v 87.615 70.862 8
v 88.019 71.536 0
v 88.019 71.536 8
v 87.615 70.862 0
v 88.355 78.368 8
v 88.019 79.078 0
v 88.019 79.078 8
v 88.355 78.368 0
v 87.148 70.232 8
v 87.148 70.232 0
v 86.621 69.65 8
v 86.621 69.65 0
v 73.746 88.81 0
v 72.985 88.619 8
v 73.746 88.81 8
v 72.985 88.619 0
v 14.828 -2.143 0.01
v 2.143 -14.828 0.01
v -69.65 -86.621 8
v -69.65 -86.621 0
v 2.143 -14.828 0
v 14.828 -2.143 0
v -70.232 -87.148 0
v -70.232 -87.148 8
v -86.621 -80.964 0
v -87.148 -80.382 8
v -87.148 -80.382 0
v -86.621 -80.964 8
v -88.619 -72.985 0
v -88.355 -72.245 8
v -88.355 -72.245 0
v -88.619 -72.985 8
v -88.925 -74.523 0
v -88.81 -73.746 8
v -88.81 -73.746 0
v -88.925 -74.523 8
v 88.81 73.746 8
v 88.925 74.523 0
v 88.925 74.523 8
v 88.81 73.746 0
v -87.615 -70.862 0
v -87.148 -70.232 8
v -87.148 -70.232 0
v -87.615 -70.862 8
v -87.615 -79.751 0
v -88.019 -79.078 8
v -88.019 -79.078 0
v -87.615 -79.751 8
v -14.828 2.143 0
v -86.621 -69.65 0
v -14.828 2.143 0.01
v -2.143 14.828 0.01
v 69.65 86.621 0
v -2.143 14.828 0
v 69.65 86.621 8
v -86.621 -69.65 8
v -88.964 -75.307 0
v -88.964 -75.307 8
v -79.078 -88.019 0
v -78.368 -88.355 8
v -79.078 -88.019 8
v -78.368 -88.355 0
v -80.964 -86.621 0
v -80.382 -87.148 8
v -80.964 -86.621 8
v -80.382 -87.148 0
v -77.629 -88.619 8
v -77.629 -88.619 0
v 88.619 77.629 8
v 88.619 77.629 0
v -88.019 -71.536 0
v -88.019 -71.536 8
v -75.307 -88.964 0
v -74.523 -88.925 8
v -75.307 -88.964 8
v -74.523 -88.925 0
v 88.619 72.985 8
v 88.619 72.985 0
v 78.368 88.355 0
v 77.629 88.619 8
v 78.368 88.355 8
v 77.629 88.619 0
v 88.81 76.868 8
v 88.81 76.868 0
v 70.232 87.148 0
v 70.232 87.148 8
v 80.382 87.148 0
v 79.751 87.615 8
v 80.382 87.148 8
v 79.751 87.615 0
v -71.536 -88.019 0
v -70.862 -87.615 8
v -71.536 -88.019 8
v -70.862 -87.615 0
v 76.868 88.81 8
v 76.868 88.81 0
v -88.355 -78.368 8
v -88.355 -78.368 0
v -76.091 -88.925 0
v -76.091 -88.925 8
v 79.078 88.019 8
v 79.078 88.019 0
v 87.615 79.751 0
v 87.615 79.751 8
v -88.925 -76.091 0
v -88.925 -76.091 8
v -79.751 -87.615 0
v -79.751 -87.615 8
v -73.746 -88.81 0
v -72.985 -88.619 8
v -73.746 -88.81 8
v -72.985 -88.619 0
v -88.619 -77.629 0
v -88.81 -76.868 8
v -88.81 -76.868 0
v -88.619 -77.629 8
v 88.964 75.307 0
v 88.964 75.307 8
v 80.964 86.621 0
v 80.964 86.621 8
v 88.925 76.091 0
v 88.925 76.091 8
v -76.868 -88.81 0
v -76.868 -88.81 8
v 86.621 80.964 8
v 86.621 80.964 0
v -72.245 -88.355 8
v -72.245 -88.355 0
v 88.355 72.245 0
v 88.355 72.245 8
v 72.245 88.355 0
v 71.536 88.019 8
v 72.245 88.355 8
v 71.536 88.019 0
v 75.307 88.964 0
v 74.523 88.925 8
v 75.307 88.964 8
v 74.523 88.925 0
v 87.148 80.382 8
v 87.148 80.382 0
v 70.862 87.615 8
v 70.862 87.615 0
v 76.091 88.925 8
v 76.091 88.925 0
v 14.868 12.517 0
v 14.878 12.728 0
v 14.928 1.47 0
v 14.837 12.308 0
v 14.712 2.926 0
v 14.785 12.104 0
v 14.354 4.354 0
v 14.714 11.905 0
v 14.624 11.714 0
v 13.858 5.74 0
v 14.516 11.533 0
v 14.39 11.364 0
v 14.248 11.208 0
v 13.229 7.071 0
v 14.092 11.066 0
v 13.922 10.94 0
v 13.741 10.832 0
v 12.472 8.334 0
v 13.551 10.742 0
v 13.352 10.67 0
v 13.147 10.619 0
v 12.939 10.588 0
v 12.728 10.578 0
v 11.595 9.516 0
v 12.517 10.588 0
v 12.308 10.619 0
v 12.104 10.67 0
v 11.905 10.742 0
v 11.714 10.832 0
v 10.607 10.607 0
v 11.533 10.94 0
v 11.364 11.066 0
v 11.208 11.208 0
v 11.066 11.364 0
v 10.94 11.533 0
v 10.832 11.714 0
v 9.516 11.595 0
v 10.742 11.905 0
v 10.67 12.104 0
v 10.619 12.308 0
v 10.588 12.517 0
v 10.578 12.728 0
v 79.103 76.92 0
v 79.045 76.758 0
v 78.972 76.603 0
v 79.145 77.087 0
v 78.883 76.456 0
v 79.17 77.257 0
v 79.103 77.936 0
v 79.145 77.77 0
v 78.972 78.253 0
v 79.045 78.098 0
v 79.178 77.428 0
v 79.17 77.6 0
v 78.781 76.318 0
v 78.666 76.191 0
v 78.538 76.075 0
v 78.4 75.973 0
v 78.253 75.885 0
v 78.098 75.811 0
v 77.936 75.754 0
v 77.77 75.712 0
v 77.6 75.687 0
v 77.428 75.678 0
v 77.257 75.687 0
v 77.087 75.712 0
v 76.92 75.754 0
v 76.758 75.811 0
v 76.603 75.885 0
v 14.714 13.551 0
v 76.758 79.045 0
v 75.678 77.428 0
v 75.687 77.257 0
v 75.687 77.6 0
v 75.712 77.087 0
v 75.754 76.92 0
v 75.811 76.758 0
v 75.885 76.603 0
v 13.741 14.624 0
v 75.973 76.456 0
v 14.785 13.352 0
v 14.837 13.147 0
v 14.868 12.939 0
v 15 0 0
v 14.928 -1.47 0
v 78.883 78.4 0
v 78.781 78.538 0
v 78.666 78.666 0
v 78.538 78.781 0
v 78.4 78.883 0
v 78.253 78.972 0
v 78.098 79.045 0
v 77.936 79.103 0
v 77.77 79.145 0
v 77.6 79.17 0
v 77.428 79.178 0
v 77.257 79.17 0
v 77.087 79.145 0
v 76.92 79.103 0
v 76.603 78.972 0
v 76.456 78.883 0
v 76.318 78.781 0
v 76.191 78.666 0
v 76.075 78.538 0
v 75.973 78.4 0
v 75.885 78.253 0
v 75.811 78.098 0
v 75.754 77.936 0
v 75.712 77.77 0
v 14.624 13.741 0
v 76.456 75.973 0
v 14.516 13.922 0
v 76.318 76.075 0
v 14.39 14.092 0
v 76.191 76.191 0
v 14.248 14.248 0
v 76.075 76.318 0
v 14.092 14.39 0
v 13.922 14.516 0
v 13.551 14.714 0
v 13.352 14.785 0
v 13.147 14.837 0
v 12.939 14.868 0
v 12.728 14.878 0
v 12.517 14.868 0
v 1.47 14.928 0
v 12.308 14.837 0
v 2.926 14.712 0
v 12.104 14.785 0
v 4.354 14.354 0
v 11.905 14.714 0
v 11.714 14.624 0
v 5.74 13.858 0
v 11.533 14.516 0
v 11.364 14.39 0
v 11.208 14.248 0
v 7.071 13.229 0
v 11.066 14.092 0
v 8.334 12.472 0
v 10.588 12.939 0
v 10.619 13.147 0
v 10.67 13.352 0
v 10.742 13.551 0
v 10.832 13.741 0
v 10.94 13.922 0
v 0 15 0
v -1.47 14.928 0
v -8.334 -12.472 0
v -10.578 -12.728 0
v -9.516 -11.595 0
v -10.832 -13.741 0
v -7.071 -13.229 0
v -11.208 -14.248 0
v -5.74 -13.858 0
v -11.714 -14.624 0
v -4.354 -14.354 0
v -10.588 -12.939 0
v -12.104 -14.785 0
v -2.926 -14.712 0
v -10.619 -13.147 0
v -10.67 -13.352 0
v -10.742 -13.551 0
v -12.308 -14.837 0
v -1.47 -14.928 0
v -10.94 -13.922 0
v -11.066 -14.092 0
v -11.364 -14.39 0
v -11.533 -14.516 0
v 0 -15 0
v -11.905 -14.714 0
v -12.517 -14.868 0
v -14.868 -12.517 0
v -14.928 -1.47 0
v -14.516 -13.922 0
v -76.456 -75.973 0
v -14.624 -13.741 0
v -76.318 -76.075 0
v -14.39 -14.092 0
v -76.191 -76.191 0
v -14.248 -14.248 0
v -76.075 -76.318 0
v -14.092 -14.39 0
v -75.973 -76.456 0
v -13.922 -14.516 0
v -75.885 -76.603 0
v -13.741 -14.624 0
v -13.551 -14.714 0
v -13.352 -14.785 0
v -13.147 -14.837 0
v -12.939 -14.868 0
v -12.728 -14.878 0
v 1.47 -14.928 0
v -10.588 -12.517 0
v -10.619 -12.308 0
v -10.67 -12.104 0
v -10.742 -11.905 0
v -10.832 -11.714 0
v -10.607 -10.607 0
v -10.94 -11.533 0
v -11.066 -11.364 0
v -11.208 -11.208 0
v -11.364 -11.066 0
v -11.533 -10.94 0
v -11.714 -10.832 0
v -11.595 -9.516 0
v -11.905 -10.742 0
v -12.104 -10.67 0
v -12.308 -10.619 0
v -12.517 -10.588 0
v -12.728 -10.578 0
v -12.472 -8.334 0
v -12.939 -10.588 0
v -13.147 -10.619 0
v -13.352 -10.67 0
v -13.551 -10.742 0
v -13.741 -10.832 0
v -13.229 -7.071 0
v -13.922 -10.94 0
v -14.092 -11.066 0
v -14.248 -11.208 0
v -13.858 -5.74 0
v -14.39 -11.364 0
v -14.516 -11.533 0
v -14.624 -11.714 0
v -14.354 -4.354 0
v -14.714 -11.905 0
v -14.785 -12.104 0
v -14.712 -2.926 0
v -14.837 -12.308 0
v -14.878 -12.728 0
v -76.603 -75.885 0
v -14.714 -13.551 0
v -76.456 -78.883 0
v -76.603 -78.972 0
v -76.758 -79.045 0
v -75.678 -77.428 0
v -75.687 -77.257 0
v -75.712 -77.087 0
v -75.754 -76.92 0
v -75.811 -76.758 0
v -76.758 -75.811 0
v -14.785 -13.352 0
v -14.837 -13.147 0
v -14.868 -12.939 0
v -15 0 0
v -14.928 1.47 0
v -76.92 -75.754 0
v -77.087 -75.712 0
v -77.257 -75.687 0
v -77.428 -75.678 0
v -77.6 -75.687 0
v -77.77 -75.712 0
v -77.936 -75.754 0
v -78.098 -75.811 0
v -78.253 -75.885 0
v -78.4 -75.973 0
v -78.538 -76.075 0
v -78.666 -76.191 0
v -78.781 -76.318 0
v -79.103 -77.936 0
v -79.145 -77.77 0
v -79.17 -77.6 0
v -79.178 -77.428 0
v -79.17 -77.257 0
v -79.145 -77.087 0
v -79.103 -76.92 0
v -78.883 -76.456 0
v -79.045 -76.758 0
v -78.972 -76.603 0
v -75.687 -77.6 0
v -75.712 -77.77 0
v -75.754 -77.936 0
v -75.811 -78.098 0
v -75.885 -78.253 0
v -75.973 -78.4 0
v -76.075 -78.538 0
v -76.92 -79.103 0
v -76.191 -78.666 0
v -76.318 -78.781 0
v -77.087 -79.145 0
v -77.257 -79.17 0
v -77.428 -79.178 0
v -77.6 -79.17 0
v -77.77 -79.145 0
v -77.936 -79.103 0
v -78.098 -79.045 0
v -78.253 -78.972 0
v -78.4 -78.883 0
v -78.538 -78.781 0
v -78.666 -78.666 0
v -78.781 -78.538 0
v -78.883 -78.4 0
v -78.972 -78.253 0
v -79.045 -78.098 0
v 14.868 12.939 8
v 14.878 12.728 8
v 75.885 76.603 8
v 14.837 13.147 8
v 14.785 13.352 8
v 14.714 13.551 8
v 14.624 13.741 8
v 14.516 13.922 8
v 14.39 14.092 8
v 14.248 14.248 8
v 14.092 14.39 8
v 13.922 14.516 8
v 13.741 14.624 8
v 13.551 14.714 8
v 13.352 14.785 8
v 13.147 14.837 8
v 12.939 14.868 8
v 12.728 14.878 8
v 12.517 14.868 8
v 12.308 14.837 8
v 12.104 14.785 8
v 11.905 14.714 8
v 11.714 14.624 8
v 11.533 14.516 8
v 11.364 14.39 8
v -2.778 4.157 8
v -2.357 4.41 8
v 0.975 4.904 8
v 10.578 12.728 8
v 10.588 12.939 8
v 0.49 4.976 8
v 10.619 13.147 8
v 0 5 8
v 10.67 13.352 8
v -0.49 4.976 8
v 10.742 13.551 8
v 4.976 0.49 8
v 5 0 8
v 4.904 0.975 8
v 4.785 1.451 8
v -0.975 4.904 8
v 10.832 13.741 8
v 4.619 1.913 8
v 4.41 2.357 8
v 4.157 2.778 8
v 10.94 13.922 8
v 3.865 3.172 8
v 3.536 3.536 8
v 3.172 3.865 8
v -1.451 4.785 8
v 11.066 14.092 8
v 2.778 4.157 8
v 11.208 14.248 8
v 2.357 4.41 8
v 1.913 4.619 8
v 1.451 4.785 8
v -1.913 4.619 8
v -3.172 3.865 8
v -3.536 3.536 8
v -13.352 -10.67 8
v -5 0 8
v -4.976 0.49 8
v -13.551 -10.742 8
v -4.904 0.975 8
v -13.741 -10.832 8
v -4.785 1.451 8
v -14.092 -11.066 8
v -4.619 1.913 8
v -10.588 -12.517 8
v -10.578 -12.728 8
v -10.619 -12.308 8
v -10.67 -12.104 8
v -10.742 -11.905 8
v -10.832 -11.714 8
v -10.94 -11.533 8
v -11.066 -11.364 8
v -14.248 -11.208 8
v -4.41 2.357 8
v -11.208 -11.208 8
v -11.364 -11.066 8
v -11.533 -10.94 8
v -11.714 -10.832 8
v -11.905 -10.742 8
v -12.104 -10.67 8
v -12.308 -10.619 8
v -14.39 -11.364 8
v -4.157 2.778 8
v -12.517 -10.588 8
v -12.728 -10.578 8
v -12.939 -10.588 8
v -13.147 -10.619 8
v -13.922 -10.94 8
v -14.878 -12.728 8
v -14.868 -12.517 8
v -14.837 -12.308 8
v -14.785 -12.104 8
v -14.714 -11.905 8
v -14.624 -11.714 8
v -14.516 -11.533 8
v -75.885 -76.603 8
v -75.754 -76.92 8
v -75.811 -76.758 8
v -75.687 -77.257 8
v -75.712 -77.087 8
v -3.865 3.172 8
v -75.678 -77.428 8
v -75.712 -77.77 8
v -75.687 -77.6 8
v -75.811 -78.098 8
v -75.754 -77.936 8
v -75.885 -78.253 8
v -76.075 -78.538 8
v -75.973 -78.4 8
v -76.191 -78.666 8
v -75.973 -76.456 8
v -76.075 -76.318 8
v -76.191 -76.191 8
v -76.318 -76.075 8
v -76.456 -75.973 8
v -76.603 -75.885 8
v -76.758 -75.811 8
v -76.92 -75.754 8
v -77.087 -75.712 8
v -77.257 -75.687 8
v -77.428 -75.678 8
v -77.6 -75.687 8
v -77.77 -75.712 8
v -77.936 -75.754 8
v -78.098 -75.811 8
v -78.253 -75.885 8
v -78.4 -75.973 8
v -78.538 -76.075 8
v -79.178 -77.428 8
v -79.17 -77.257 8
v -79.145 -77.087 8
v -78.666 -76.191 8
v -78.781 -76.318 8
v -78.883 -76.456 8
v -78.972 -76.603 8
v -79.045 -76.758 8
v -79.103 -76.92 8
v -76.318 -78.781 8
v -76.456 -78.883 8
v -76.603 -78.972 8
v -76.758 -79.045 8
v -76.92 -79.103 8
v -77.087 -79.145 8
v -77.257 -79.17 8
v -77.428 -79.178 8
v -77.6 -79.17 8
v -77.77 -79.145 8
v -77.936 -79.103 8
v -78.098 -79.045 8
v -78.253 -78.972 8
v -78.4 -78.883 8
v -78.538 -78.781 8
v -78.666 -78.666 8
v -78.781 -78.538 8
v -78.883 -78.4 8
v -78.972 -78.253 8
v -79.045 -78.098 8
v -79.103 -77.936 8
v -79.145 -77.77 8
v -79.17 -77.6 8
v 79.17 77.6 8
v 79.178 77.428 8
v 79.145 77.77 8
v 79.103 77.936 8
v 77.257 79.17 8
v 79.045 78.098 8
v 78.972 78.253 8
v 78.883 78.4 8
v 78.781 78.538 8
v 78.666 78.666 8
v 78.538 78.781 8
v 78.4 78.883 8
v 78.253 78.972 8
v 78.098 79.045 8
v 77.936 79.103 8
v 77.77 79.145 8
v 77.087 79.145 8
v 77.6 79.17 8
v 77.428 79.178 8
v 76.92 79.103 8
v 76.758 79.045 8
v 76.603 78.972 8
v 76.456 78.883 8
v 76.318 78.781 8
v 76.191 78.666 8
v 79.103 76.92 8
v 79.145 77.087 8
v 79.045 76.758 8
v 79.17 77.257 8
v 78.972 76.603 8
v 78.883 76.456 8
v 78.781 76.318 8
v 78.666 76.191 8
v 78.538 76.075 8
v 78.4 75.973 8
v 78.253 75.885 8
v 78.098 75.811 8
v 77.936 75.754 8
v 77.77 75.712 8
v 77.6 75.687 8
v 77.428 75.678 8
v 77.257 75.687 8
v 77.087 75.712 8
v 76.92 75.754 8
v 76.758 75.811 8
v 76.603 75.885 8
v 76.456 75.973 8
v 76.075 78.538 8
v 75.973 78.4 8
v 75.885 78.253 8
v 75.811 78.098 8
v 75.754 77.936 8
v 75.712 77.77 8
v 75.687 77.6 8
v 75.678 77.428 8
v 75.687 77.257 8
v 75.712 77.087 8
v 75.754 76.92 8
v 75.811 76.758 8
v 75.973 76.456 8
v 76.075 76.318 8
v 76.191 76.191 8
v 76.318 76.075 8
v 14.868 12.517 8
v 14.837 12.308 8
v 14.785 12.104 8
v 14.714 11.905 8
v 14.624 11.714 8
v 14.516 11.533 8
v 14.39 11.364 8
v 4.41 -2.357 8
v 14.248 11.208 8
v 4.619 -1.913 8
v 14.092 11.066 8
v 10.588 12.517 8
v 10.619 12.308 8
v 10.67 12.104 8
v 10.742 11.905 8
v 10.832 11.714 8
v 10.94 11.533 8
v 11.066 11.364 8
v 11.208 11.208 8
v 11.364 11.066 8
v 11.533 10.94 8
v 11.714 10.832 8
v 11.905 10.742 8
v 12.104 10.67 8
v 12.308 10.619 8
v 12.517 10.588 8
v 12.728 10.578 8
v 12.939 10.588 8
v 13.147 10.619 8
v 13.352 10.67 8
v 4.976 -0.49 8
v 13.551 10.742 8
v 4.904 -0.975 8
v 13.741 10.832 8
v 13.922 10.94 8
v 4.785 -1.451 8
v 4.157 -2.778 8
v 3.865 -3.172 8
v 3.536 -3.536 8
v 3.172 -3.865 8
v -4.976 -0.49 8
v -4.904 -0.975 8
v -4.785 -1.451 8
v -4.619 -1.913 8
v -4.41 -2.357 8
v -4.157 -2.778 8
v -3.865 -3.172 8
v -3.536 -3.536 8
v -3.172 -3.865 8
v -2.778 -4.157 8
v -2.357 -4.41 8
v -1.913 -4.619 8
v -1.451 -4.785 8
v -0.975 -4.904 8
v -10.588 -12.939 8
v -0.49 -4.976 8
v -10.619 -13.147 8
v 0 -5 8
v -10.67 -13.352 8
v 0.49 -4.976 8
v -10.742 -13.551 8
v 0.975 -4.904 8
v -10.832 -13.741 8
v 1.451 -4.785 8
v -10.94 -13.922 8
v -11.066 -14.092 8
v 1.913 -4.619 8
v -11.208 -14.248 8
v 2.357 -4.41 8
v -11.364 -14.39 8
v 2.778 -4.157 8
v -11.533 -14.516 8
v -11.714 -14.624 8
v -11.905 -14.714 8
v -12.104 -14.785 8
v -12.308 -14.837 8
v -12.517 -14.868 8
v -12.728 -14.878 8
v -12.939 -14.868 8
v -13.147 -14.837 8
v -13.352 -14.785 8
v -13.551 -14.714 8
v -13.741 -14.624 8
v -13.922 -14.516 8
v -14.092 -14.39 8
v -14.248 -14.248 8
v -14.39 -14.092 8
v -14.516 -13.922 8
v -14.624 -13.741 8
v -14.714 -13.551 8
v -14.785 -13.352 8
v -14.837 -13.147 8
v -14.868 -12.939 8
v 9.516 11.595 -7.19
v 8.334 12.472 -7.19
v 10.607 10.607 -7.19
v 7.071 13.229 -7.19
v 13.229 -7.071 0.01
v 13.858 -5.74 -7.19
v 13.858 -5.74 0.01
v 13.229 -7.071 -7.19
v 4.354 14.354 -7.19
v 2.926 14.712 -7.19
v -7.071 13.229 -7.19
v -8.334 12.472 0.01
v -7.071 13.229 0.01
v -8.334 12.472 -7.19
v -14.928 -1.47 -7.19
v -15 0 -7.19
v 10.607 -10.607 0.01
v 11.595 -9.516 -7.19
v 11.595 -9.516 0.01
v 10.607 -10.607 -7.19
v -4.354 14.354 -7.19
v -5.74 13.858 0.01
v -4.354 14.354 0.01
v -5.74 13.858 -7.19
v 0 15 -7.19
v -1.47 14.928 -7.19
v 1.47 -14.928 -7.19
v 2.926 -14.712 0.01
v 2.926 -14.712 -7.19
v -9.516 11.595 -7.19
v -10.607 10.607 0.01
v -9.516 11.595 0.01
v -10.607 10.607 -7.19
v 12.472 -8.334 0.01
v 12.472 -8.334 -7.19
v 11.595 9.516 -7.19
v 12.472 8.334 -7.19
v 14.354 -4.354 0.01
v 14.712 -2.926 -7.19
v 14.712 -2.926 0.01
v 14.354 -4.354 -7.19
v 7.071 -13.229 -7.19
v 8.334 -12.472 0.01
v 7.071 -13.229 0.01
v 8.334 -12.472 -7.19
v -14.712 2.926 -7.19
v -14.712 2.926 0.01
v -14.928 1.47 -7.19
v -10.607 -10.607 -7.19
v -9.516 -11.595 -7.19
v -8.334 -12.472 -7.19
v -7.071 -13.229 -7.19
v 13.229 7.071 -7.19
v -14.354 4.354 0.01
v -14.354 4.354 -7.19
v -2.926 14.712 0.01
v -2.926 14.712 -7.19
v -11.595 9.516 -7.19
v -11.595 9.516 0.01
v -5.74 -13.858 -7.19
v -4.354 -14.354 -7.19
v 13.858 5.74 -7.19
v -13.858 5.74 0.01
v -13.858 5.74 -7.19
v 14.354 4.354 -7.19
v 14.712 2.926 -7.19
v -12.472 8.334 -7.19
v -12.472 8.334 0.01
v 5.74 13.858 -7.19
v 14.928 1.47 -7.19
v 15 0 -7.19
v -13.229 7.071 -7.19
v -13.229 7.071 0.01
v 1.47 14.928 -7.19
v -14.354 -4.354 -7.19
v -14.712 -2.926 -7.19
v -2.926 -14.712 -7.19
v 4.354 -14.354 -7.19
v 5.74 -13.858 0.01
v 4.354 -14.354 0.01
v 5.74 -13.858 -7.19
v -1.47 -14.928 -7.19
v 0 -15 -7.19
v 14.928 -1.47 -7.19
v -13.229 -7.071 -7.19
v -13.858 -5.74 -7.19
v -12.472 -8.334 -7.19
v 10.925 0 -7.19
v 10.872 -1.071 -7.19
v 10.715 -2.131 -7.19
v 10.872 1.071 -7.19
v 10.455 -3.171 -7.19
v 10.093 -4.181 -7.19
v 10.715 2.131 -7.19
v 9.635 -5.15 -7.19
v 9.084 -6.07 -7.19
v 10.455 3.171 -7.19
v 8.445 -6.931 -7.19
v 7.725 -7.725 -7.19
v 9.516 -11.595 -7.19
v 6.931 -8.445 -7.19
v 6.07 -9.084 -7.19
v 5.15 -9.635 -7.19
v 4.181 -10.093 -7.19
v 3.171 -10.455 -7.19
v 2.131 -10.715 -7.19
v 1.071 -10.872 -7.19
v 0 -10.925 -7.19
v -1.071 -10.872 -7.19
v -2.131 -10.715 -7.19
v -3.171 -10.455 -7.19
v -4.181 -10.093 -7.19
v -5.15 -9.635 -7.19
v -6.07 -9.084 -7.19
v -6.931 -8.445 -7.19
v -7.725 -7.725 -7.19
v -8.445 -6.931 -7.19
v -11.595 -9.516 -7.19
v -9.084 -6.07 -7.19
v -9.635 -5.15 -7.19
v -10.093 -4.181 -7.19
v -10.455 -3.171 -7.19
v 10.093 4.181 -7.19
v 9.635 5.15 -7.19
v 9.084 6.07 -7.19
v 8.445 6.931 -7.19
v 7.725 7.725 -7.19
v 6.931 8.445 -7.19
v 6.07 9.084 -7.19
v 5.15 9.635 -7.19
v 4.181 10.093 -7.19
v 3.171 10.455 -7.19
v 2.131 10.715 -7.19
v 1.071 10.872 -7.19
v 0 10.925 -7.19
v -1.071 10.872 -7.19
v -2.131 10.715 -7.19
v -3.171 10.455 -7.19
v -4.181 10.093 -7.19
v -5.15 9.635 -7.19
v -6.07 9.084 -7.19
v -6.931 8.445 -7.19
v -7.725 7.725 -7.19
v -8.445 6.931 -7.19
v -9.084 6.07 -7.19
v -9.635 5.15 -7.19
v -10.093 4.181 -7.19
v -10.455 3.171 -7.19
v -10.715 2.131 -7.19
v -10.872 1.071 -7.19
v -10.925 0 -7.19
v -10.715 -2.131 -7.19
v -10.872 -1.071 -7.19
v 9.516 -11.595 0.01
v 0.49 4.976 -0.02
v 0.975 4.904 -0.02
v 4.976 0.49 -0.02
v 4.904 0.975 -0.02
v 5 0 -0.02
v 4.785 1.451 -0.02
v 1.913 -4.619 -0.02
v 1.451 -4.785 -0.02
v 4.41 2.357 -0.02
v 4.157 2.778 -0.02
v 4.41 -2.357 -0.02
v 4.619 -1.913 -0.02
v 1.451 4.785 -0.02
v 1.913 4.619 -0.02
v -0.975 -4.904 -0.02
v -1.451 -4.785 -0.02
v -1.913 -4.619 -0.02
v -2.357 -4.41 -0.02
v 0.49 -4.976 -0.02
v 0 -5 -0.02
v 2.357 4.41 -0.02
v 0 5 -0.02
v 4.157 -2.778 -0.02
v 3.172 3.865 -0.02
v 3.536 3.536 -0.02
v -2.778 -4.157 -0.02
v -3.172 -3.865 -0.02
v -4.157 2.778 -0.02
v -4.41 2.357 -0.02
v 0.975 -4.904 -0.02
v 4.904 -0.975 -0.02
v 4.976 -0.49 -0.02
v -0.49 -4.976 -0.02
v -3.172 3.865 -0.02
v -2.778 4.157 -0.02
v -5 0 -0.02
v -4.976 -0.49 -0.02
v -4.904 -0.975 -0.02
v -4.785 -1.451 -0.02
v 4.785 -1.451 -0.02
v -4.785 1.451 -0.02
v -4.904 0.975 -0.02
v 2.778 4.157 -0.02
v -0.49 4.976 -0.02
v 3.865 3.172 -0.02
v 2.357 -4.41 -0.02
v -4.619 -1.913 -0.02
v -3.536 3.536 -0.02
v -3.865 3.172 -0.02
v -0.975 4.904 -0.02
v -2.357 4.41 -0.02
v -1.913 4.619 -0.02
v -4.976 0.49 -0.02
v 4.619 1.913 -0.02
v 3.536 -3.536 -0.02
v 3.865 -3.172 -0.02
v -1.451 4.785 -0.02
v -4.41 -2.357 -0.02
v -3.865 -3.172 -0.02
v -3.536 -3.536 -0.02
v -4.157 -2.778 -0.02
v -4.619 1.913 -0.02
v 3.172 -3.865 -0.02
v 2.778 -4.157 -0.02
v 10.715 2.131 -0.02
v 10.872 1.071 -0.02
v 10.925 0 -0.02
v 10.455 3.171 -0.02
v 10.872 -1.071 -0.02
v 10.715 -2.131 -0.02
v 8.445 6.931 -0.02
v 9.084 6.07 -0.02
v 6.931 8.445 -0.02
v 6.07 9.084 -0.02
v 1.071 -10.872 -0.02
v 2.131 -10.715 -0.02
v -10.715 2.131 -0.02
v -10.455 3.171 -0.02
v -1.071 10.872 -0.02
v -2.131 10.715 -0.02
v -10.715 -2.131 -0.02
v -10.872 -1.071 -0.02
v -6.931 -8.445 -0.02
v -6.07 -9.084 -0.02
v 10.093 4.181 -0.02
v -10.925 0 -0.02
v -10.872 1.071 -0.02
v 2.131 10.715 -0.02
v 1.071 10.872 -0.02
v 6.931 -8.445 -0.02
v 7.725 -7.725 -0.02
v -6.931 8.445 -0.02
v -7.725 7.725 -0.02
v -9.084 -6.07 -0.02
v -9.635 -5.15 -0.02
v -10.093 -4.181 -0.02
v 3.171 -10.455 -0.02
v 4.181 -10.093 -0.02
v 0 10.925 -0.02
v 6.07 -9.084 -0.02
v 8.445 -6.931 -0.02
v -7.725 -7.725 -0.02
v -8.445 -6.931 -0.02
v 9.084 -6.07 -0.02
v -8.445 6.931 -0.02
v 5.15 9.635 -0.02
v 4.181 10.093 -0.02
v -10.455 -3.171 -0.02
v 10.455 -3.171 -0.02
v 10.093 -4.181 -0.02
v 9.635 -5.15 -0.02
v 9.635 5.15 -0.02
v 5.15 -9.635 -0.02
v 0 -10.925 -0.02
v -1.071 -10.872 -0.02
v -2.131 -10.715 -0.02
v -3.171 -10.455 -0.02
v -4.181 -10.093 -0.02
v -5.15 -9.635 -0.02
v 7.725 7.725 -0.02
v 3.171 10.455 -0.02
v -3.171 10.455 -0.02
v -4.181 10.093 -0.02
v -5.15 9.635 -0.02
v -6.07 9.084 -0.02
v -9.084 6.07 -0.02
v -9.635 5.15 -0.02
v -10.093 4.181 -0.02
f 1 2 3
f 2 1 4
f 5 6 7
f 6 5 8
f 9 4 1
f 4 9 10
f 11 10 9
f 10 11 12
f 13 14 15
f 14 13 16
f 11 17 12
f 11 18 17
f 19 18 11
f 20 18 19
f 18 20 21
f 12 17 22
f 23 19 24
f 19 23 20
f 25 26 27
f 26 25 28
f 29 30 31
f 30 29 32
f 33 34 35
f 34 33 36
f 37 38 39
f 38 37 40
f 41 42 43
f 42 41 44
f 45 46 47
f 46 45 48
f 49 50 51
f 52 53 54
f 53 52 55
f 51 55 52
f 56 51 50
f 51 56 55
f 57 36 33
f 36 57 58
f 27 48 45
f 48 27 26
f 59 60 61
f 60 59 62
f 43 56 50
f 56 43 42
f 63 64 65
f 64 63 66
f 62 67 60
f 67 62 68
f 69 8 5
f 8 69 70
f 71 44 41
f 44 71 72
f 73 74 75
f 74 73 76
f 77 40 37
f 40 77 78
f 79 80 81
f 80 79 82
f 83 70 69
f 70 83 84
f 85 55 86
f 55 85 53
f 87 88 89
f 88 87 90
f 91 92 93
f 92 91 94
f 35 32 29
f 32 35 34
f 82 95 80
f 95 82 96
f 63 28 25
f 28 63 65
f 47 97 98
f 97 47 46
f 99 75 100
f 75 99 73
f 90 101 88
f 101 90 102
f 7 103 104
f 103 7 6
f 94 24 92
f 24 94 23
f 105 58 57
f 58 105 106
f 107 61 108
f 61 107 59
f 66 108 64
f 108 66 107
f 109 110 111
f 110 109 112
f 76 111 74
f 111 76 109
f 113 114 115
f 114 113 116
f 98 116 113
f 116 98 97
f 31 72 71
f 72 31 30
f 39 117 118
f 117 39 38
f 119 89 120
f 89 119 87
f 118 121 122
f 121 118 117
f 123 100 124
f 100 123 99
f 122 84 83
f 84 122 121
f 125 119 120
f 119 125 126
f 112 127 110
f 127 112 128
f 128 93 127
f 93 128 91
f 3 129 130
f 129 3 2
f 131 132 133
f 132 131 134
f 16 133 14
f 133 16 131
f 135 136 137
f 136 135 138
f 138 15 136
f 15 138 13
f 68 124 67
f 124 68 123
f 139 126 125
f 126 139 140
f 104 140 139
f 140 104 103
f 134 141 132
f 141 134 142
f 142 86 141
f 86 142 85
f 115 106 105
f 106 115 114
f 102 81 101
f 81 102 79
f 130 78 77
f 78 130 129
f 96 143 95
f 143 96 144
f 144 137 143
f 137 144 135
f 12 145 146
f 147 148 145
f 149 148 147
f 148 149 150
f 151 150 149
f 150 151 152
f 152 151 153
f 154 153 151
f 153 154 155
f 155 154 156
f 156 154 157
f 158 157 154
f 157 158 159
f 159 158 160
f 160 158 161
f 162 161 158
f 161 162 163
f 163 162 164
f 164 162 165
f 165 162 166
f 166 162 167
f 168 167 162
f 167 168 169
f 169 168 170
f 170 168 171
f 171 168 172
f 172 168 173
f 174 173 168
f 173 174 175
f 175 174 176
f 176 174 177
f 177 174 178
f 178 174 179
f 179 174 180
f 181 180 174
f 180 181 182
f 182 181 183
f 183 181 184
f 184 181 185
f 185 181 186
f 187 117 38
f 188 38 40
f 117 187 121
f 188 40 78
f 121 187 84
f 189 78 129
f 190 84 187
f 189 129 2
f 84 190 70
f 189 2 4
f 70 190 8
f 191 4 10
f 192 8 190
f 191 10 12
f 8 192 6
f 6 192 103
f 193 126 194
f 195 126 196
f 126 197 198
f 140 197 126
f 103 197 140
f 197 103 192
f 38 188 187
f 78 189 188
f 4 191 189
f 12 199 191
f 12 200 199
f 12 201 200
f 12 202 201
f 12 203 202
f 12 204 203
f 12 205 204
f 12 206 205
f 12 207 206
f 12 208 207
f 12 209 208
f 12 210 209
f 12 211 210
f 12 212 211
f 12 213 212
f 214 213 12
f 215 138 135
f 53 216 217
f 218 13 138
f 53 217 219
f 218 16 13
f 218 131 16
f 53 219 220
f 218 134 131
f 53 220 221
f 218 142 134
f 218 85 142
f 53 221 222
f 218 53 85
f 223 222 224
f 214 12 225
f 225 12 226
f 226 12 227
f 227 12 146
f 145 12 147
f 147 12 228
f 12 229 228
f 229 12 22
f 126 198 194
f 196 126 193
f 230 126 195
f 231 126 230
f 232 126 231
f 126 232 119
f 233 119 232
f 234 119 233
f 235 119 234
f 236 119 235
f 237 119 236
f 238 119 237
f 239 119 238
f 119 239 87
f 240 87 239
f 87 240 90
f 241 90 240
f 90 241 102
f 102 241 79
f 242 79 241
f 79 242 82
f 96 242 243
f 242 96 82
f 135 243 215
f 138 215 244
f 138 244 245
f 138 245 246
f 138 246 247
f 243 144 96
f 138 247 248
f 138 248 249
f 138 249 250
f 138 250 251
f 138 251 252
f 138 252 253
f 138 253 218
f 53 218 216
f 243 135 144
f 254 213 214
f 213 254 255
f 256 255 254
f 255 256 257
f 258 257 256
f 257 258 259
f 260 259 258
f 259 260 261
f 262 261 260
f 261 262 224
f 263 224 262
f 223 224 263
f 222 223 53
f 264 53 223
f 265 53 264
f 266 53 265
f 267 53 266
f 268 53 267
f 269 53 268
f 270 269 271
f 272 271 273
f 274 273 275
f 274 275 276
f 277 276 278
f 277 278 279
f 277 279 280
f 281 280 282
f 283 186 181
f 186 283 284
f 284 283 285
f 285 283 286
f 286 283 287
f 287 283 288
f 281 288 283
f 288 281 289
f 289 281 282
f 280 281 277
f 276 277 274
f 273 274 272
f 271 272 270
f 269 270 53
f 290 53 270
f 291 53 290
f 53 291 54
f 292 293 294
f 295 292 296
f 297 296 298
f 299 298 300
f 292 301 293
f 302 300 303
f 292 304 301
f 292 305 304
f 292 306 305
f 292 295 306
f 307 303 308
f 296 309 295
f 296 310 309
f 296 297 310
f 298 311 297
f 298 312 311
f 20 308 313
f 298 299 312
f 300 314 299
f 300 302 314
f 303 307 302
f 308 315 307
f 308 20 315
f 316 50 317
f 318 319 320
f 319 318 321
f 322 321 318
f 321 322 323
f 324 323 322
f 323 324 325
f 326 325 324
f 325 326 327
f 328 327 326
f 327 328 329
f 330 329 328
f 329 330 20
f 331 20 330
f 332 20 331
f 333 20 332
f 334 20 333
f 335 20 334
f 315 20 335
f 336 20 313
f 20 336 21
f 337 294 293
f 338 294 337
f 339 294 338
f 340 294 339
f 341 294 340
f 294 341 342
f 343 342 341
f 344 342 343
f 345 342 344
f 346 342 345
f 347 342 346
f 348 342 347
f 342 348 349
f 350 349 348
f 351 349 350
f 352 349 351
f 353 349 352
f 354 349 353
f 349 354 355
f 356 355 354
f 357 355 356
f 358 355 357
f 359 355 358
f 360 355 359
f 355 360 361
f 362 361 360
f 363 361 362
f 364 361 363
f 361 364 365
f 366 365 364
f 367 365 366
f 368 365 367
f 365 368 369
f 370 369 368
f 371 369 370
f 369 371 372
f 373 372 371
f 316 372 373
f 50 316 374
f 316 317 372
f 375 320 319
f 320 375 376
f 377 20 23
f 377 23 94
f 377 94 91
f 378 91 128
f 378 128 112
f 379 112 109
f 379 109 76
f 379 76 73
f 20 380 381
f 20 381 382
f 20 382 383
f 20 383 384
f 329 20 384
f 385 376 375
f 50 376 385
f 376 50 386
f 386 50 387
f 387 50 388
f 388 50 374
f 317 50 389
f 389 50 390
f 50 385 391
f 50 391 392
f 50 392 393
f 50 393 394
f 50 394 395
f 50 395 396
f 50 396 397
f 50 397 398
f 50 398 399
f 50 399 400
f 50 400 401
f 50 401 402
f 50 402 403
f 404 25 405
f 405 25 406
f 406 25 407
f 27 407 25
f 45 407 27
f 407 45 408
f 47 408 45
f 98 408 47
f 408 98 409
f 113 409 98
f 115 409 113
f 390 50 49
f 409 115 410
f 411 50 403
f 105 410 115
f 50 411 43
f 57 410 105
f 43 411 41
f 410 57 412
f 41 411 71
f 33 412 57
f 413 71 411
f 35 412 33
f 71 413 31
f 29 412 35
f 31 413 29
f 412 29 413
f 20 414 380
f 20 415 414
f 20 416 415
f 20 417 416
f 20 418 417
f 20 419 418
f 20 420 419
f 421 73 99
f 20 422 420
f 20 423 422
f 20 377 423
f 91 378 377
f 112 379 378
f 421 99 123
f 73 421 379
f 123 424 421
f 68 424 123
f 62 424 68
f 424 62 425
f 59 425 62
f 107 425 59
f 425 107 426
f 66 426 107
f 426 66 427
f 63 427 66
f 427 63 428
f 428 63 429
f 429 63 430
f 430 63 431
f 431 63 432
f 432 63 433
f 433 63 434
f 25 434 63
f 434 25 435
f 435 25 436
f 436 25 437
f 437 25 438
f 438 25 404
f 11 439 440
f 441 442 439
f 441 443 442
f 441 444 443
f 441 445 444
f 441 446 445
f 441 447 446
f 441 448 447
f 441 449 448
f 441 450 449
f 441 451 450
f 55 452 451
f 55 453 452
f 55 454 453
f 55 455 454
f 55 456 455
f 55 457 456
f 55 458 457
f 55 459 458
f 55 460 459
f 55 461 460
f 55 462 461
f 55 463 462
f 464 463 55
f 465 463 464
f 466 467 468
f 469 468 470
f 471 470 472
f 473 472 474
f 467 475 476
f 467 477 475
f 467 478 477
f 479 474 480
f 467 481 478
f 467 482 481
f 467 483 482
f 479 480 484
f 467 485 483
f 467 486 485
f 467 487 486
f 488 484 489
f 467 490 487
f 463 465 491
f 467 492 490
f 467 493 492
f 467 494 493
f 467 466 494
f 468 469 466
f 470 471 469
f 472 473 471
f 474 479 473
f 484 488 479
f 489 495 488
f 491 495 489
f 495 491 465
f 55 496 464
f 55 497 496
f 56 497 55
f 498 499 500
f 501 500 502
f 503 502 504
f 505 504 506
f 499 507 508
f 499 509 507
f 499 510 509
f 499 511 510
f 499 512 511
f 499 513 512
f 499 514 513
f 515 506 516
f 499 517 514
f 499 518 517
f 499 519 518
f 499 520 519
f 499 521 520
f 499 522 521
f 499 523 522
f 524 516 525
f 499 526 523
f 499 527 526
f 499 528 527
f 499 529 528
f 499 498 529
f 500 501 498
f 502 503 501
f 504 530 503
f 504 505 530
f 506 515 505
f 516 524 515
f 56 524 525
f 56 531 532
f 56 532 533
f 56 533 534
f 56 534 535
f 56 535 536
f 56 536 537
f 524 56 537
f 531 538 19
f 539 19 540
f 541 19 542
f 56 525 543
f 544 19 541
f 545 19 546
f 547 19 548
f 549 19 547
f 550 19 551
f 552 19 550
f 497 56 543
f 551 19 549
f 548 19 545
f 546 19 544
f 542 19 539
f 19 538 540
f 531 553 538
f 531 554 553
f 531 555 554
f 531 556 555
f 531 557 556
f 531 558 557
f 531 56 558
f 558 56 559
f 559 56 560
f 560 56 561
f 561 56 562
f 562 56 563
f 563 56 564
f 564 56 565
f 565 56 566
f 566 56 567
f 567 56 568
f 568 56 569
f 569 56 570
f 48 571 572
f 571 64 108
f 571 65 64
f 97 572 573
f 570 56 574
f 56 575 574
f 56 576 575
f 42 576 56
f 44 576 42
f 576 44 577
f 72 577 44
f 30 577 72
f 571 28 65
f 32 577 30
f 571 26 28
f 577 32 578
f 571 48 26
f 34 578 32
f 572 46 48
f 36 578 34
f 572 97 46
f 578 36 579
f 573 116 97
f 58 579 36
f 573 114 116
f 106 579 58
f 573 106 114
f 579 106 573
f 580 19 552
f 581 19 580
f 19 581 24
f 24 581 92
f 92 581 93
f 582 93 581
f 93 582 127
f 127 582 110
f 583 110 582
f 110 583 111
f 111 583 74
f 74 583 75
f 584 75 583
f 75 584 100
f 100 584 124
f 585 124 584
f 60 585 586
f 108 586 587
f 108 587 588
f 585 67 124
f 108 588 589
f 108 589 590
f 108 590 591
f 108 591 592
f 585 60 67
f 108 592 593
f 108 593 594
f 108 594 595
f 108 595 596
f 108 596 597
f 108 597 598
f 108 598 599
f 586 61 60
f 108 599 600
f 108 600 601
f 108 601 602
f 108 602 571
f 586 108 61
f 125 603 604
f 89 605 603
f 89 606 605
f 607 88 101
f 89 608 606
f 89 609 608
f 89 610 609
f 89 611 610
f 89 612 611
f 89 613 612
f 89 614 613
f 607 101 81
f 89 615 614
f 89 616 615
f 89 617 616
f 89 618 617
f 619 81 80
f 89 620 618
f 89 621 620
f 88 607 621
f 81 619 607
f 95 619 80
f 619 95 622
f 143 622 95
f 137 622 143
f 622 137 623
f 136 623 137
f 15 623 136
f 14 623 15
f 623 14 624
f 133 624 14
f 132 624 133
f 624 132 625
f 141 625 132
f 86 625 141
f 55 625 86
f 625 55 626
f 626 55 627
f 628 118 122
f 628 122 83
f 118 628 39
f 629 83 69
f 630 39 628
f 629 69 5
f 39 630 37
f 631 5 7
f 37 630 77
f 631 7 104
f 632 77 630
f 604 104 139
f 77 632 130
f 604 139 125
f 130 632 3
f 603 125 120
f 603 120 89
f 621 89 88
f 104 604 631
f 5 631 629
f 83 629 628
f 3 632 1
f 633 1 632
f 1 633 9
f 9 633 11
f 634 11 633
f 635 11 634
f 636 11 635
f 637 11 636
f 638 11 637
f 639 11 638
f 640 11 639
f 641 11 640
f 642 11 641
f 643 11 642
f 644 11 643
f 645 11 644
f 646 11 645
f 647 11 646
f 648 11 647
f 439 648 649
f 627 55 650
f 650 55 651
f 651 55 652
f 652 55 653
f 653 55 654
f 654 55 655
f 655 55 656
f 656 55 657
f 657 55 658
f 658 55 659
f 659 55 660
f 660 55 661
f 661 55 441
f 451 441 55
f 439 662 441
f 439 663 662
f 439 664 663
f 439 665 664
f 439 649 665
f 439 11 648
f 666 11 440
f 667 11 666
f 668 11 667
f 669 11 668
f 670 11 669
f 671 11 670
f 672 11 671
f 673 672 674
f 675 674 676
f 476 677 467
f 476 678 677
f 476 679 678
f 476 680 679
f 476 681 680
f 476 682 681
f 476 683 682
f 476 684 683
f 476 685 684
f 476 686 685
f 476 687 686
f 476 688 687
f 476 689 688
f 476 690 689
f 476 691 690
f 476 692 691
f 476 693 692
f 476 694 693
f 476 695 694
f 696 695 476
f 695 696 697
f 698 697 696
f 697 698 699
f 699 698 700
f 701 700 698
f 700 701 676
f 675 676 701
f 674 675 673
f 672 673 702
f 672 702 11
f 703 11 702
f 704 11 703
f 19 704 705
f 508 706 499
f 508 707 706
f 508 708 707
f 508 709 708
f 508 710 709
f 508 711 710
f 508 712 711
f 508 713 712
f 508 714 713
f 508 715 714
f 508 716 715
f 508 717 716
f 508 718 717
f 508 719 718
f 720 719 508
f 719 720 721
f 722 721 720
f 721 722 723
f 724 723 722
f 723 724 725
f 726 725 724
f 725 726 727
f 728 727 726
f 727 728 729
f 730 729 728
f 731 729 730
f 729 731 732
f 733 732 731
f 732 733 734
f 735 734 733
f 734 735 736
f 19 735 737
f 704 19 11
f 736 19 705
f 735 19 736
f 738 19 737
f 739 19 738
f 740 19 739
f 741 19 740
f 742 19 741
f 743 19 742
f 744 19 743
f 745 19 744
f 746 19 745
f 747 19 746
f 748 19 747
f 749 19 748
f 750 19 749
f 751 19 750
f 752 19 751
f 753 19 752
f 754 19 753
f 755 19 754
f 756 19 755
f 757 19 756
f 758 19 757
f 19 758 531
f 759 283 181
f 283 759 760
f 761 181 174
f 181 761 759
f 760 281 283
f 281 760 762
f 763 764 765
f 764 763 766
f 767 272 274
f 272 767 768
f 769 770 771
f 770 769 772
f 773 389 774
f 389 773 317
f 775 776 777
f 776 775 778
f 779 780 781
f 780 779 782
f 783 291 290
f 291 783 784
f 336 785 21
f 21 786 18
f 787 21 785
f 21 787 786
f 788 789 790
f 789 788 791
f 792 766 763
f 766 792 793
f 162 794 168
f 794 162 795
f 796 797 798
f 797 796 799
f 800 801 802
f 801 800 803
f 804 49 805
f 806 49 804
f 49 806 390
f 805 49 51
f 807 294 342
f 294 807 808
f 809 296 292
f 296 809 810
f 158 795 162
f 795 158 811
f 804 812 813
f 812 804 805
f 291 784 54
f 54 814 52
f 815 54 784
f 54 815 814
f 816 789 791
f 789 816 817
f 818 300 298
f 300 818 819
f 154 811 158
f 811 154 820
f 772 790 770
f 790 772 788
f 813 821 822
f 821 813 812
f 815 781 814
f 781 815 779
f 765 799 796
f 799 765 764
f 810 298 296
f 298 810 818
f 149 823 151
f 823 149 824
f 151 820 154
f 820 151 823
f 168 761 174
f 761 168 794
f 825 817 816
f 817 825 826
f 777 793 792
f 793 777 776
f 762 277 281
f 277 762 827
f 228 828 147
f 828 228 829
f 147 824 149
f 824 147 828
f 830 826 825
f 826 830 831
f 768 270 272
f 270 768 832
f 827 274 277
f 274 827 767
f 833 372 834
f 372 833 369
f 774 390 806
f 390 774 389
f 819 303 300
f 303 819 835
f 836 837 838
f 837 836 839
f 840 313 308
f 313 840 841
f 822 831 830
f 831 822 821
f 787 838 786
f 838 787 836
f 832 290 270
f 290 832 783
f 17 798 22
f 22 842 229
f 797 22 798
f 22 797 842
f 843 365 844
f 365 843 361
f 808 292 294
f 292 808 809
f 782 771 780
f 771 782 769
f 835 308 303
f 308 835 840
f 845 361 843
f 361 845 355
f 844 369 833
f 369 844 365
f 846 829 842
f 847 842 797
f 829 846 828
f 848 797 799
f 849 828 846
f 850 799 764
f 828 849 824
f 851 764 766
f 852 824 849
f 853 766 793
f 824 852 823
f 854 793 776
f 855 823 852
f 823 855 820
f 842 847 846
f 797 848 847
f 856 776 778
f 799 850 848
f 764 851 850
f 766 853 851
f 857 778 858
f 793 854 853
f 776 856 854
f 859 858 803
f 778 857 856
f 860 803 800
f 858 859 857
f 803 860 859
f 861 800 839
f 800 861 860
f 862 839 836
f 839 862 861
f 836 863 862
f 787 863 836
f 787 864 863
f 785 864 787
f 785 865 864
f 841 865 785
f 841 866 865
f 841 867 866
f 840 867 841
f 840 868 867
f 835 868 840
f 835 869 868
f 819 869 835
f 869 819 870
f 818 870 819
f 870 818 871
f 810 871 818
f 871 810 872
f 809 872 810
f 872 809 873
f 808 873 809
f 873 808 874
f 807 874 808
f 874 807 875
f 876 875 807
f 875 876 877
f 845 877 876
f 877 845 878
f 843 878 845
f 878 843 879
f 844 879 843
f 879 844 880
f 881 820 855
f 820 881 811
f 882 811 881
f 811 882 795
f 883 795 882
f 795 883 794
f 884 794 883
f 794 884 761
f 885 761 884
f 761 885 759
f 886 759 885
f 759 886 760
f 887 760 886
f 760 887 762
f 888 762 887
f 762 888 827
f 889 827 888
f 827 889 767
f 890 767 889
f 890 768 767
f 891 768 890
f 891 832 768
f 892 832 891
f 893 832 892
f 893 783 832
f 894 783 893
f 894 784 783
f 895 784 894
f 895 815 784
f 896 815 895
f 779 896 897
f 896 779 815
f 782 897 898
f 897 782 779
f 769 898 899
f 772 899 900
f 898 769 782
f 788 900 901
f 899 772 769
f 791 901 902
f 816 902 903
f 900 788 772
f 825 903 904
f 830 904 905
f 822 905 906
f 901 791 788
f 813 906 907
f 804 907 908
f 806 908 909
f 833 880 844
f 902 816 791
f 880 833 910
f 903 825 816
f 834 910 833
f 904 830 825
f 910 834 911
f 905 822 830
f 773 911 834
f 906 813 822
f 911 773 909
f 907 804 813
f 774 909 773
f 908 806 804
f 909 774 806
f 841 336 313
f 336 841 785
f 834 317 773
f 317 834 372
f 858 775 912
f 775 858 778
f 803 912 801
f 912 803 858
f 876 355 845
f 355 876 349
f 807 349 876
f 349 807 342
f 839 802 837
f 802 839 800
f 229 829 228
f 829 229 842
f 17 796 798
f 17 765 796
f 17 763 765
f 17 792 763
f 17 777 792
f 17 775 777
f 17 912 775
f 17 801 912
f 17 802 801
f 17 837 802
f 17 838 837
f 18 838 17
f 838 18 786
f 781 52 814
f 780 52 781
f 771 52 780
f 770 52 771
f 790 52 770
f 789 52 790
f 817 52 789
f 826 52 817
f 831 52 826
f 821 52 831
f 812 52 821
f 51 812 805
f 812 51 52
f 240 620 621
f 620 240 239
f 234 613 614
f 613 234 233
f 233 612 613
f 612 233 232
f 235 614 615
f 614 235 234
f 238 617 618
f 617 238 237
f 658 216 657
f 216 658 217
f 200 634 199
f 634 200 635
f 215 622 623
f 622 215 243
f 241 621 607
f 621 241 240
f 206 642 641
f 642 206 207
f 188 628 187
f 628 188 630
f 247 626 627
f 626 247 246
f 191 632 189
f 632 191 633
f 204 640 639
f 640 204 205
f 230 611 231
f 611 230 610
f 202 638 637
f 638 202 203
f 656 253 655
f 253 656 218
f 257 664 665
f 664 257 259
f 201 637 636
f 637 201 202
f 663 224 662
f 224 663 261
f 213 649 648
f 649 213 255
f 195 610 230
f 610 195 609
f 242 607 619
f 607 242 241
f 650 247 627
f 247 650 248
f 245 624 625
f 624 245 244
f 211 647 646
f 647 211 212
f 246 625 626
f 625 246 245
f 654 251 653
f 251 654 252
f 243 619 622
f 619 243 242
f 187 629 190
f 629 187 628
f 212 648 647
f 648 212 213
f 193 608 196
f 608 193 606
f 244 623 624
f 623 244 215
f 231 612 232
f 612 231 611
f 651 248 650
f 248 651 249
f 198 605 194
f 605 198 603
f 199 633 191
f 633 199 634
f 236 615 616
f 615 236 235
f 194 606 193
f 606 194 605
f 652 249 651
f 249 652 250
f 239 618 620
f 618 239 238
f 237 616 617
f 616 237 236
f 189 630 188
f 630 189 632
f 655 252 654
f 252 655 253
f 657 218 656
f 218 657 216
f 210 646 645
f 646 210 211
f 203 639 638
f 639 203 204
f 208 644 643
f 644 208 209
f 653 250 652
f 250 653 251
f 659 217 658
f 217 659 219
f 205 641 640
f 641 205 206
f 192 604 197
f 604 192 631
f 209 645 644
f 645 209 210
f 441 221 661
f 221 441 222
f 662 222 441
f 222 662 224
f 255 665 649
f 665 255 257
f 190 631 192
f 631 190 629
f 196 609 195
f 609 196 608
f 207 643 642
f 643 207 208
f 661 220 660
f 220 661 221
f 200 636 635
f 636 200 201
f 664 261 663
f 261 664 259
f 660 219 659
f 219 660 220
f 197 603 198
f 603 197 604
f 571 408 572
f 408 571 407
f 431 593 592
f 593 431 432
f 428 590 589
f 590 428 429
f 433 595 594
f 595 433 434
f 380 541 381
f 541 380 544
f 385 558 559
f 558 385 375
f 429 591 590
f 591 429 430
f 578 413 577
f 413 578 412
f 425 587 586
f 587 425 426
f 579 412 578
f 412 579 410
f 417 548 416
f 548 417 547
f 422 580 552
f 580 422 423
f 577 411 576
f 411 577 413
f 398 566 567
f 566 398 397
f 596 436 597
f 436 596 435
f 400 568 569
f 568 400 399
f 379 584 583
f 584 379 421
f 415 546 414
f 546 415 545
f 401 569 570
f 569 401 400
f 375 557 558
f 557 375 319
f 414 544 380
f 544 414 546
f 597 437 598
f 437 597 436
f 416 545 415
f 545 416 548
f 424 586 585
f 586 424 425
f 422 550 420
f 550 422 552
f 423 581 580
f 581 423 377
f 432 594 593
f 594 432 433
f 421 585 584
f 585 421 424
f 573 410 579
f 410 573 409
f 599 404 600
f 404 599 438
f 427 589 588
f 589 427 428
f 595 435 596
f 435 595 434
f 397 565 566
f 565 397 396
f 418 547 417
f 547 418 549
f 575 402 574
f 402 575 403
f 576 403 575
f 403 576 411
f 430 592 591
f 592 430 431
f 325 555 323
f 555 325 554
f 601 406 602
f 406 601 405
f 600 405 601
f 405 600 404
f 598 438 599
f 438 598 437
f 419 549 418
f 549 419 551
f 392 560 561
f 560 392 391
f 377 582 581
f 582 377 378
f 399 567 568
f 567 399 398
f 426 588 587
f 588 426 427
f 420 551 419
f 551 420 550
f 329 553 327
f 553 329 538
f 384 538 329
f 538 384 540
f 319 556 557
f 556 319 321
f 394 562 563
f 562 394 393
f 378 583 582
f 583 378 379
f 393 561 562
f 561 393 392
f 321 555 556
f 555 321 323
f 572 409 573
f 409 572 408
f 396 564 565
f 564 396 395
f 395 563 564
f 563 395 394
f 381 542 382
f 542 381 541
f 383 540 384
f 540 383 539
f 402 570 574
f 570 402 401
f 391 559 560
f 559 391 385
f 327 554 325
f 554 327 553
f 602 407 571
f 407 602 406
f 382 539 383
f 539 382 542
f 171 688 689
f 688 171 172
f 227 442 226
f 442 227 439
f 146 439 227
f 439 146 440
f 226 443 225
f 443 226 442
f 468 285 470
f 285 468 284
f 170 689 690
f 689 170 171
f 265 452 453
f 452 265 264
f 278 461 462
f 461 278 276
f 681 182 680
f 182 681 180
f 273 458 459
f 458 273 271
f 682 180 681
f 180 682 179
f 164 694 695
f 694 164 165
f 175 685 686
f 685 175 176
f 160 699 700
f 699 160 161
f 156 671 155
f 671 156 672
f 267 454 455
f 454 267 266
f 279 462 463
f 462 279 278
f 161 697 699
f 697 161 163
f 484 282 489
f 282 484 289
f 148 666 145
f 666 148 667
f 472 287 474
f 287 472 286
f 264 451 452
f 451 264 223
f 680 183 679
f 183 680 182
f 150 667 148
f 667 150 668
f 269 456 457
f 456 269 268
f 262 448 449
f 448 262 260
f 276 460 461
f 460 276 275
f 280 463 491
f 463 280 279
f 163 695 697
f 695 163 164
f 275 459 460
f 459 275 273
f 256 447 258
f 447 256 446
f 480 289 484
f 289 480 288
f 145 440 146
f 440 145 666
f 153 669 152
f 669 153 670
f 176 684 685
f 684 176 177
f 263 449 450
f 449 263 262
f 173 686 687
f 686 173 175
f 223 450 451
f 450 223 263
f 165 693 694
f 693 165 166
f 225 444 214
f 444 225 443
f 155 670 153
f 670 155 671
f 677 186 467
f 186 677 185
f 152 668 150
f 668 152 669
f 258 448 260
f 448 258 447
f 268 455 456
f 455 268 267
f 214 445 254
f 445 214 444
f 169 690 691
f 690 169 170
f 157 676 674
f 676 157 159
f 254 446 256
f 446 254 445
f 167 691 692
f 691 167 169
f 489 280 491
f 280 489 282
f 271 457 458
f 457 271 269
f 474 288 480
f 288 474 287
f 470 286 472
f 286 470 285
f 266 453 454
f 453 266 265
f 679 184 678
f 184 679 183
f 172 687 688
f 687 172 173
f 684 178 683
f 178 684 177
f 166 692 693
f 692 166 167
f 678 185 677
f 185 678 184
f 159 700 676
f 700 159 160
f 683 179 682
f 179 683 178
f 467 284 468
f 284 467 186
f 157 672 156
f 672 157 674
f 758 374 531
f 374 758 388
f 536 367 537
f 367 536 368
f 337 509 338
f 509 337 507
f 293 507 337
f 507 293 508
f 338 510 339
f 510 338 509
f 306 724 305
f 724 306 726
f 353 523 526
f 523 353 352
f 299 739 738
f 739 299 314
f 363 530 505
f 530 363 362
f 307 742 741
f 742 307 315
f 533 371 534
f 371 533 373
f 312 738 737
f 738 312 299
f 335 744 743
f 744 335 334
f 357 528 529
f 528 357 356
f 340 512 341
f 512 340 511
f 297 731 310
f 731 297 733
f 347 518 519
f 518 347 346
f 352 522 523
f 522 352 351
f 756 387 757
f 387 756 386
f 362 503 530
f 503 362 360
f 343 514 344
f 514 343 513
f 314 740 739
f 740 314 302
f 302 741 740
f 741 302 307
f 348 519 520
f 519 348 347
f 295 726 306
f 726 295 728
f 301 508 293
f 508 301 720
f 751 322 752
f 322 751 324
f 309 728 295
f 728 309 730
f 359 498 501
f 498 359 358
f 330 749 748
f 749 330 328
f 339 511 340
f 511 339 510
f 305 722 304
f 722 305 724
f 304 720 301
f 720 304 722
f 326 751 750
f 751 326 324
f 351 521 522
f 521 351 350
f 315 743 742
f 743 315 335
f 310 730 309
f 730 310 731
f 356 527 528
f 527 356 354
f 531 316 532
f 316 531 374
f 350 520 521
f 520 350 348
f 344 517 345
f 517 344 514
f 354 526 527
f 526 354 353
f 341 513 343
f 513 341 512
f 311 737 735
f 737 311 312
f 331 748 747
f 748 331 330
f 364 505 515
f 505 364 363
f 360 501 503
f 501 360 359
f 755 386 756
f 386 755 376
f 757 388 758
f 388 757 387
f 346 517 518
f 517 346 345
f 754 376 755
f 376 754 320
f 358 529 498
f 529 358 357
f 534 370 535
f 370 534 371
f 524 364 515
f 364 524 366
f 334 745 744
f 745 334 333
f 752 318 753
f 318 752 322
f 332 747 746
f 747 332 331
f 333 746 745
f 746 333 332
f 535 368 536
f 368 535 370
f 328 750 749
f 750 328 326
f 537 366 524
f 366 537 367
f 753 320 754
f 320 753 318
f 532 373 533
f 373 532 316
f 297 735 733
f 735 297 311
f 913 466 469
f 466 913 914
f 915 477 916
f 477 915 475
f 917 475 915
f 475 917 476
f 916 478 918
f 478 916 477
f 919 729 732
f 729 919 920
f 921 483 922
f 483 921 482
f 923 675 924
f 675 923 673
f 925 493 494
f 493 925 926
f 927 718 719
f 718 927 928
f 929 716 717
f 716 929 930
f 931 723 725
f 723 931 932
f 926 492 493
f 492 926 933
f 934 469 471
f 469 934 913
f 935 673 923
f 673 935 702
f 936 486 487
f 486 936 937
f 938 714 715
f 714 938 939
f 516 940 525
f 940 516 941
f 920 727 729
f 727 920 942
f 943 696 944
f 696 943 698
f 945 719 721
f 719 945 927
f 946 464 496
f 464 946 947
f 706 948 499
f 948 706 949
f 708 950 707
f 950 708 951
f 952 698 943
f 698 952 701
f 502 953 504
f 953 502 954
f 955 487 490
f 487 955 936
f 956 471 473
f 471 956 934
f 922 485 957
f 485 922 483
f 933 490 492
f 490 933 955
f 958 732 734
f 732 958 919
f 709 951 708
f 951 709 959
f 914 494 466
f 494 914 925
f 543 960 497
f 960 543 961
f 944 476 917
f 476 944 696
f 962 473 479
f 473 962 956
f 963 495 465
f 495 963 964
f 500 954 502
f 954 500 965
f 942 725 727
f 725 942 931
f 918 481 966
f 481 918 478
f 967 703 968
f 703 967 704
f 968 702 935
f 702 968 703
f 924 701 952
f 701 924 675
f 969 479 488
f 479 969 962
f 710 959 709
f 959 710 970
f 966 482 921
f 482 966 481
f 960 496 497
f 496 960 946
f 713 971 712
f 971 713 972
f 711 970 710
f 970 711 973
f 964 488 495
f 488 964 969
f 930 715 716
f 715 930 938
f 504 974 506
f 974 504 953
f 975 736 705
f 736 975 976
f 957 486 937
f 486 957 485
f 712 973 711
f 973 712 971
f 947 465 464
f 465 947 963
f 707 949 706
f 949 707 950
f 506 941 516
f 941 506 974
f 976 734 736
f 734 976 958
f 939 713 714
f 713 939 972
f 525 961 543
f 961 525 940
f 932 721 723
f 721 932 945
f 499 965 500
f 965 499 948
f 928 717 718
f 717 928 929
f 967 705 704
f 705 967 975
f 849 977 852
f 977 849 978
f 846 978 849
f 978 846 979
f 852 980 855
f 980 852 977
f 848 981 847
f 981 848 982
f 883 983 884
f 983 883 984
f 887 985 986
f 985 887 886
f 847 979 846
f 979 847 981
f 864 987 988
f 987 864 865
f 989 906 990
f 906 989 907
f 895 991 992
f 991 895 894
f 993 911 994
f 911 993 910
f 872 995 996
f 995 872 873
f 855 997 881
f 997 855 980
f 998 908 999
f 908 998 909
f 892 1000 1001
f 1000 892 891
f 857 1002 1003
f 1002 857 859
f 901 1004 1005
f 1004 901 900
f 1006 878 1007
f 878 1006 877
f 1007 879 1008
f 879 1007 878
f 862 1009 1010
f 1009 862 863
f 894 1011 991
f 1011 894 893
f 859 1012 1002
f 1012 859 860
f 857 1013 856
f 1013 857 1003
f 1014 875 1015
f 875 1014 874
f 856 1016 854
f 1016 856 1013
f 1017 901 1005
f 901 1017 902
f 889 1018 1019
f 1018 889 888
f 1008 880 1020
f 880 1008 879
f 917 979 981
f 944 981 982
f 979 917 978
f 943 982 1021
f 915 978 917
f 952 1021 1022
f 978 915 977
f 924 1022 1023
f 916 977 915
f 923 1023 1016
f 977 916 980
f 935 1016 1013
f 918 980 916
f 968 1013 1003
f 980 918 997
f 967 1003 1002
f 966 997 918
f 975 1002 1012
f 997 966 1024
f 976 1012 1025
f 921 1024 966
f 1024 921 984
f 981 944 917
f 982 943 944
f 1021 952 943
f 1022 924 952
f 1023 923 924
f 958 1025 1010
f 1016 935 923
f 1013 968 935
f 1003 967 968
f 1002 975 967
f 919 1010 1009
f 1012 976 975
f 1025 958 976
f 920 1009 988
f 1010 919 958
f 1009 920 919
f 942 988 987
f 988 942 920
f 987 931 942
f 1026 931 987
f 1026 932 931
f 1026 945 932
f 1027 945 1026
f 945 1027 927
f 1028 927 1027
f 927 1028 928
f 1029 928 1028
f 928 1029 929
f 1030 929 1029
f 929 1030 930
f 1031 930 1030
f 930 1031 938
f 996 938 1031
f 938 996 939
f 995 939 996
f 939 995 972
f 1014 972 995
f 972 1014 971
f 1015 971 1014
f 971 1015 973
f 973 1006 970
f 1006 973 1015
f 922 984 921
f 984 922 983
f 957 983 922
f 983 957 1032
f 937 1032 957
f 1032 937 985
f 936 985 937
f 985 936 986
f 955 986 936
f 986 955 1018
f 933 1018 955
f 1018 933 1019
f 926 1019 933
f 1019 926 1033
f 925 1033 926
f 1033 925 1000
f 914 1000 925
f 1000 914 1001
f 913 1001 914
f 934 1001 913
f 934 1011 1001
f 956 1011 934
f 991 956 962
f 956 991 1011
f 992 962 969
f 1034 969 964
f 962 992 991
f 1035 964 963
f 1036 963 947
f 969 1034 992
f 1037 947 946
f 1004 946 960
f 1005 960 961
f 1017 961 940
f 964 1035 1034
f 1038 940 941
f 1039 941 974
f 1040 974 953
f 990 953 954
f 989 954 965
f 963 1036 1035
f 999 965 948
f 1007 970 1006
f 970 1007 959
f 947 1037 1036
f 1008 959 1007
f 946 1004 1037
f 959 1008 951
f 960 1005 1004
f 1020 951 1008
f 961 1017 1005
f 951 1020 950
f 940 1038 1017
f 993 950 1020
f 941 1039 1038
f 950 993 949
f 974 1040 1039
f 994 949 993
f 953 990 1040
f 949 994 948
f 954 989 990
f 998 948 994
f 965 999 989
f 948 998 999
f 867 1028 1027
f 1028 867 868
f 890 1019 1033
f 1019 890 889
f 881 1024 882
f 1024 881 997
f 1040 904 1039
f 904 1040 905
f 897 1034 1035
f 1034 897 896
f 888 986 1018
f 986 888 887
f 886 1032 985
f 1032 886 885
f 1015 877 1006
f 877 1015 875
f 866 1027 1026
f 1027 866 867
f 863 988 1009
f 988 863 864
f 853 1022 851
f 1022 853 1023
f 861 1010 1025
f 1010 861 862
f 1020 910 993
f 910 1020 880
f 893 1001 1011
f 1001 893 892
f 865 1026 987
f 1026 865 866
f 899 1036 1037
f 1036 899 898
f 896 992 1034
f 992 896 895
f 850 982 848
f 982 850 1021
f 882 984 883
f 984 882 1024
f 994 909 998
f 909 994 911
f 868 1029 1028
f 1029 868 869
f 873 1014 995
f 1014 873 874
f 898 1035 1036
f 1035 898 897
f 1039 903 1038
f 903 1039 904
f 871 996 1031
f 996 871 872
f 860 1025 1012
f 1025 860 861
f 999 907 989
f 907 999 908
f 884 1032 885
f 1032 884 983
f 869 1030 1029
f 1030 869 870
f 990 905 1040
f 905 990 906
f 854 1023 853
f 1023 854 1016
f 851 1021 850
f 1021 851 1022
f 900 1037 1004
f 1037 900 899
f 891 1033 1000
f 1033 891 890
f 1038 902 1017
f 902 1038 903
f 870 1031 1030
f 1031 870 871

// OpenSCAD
// Gen-CR — front BEARING BRIDGE (bar endbell, 2026-10-10): a 608 boss on a 24 mm wide bar that spans the
// two frame rods at 45 deg and 45+180 deg (R = flange_bolt_r). The front bridge uses the rods at 45/225 deg, the rear
// bridge the rods at 135/315 deg, so the two bridges cross at 90 deg and the stator is held at 4 points.
// A bar instead of a full disc is what lets this big-ring kit fit ONE 410 mm plate. Print flat face DOWN (boss up, no supports).
// Brace holes (temporary M4 jack rods, R = brace_r) sit on the bar axis.
include <parameters.scad>;
$fn = 64;
bar_w = 24;
bar_len = 2 * (flange_bolt_r + 9);
module bar_2d() { offset(r=8) offset(delta=-8) square([bar_len, bar_w], center=true); }
difference() {
    rotate([0, 0, 45]) union() {
        linear_extrude(endbell_thick) bar_2d();
        translate([0, 0, -bearing_h + 0.01]) cylinder(d=30, h=bearing_h);
    }
    translate([0, 0, -bearing_h - 0.1]) cylinder(d=endbell_shaft_clear, h=50);
    translate([0, 0, -bearing_h - 0.02]) cylinder(d=bearing_d, h=bearing_h);
    for (s = [0, 180]) rotate([0, 0, 45 + s]) translate([flange_bolt_r, 0, -20]) cylinder(d=m3_clear, h=60);
    for (a = brace_angles) translate([brace_r*cos(a), brace_r*sin(a), -20]) cylinder(d=brace_d, h=50);
}
